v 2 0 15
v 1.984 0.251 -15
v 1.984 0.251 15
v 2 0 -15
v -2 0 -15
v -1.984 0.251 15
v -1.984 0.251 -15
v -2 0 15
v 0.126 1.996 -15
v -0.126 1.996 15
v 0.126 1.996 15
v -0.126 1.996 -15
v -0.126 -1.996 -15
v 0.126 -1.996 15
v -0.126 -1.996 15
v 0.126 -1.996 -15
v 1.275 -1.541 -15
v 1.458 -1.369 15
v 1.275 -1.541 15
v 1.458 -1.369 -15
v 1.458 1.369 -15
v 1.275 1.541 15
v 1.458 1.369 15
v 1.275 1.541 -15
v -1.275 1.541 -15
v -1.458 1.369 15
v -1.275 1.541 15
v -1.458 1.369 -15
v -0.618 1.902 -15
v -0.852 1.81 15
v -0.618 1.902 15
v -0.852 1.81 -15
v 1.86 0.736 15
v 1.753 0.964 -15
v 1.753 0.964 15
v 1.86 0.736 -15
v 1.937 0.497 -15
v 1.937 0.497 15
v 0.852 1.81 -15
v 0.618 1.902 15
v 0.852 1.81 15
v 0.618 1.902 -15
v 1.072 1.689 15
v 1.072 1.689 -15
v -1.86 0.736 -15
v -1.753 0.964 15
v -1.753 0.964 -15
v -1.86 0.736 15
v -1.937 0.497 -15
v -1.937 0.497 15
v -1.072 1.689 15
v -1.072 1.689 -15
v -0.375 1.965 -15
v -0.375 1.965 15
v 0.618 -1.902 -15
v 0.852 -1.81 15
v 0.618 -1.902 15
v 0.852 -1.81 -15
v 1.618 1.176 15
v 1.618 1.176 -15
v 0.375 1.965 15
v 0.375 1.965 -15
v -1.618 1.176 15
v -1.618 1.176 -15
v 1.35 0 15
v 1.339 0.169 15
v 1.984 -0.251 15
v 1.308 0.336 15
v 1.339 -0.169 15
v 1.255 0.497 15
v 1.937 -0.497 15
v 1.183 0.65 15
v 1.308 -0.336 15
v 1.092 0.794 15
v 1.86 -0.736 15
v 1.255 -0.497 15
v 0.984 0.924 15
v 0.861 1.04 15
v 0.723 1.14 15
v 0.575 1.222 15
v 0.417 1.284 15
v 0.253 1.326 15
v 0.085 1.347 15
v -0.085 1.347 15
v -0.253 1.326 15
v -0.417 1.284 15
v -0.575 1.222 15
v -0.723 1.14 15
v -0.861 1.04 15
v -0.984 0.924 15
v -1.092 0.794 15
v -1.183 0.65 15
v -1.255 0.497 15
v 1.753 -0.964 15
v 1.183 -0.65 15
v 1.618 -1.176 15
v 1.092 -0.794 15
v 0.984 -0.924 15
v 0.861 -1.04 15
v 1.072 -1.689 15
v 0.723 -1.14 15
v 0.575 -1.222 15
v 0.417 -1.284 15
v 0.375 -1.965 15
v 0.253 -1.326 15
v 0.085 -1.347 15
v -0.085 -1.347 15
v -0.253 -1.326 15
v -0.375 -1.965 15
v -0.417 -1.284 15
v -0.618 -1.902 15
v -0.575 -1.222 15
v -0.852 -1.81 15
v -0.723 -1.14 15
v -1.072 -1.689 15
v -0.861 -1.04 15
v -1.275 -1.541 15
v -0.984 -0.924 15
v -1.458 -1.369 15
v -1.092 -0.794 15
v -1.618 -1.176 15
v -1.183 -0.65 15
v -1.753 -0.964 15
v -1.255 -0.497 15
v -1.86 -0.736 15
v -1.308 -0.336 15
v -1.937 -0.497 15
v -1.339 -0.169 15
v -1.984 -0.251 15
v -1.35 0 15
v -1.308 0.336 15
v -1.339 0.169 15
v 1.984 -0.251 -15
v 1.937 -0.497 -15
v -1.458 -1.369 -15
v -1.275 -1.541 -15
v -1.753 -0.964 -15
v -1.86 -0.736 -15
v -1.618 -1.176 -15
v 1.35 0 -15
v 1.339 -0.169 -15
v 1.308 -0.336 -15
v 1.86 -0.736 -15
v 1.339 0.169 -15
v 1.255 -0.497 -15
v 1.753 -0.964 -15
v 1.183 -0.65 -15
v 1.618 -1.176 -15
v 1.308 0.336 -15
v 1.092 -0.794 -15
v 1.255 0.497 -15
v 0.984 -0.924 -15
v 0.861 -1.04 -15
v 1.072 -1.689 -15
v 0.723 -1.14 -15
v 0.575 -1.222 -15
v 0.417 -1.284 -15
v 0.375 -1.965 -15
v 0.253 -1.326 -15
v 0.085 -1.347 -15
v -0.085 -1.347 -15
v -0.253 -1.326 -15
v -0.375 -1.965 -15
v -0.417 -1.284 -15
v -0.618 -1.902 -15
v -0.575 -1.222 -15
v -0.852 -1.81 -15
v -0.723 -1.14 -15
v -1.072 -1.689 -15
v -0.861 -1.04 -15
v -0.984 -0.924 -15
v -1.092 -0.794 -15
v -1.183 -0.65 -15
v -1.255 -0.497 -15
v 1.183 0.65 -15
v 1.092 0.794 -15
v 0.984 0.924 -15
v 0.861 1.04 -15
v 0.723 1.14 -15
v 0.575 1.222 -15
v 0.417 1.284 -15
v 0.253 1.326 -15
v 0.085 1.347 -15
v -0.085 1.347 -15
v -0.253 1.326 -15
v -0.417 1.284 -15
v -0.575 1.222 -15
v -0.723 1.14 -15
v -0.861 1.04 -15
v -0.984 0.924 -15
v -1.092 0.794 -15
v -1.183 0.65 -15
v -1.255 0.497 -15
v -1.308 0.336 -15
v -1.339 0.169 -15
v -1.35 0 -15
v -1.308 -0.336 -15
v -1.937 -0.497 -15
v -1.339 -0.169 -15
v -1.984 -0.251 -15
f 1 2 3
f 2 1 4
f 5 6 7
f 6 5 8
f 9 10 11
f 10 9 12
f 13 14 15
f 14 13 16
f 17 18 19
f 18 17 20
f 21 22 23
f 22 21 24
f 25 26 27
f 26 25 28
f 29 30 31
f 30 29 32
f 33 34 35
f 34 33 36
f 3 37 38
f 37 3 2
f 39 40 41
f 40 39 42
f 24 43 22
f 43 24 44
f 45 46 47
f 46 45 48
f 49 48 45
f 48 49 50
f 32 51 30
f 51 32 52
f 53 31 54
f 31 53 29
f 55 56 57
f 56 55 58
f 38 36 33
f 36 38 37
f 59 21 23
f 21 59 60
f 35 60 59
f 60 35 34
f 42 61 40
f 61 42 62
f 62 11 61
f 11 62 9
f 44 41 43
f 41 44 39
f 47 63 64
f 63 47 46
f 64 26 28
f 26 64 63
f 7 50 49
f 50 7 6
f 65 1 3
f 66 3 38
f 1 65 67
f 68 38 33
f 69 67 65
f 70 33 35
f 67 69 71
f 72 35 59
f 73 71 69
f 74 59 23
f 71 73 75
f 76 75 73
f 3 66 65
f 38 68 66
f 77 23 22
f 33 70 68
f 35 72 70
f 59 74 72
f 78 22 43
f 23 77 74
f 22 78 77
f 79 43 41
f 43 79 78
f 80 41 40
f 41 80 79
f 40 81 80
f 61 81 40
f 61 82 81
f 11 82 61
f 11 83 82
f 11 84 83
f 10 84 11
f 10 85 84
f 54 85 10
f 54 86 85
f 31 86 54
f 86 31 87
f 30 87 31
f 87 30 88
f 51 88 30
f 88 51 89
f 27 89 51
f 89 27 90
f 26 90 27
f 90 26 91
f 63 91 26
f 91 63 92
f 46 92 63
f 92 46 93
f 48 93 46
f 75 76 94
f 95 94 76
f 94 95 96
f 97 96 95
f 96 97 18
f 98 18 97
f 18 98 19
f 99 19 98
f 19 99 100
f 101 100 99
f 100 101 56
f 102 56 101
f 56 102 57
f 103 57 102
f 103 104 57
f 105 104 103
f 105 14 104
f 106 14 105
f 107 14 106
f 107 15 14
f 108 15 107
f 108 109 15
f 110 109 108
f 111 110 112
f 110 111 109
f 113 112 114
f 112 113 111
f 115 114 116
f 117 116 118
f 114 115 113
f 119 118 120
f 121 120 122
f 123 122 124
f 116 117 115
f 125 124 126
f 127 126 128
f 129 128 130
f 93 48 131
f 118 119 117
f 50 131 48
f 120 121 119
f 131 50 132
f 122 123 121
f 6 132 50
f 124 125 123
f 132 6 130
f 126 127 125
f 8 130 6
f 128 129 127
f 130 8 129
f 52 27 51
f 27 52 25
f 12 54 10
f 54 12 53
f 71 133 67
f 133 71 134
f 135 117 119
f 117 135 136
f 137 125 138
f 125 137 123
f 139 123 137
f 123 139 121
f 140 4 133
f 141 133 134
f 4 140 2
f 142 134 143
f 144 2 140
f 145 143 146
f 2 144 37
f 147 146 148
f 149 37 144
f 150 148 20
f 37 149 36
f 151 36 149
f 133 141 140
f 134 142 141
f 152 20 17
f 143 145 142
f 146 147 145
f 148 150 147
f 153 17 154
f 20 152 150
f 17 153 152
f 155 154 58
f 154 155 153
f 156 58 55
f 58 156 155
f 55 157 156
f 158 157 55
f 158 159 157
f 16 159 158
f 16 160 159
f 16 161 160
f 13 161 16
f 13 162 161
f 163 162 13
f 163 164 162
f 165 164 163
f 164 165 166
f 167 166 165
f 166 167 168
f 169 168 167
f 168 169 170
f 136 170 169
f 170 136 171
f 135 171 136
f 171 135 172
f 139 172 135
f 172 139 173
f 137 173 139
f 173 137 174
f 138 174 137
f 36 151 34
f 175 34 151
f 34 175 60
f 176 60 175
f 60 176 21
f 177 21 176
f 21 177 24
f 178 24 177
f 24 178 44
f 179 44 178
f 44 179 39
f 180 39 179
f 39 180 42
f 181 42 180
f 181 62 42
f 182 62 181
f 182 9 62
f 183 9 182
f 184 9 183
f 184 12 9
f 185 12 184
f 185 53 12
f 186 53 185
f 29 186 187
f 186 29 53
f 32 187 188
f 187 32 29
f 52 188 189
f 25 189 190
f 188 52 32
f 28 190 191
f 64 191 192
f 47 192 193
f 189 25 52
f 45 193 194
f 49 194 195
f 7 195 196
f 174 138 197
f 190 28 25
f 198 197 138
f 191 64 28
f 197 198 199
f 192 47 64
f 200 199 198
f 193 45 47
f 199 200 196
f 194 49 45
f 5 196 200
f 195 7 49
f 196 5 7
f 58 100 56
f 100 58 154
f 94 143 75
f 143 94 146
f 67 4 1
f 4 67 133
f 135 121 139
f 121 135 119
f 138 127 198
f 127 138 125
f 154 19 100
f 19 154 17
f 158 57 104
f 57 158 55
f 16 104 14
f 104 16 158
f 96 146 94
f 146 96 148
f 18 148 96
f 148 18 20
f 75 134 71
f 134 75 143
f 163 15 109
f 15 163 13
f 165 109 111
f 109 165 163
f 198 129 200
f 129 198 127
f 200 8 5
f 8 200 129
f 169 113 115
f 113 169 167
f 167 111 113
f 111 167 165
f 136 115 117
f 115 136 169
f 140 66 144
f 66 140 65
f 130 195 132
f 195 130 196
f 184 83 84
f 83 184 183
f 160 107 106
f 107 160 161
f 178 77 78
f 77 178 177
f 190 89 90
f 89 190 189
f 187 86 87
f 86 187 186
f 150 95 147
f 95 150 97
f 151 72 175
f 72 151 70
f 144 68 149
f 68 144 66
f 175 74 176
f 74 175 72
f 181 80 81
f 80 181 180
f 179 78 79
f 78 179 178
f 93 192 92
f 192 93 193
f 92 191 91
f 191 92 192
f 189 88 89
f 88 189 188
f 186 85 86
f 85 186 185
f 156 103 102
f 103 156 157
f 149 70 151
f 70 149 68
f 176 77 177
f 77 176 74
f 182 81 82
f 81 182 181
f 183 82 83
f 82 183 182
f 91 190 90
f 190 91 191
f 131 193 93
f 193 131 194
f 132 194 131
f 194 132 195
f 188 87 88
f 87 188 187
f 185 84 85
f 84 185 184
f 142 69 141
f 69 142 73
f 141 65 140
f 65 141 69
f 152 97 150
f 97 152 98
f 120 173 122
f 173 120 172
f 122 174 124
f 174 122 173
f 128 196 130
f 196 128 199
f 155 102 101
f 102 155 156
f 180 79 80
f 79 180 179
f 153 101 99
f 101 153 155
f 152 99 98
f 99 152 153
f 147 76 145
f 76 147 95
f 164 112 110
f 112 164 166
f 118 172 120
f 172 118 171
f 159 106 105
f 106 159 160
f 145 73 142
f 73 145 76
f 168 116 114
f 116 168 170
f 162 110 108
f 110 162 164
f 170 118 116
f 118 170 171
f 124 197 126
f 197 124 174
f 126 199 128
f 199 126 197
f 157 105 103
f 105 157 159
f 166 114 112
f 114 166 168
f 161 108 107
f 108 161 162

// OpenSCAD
$fn = 50;


difference() {
	union() {
		translate(v = [0, 0, -15.0000000000]) {
			cylinder(h = 30, r = 2.0000000000);
		}
	}
	union() {
		translate(v = [0, 0, -100.0000000000]) {
			cylinder(h = 200, r = 1.3500000000);
		}
	}
}
